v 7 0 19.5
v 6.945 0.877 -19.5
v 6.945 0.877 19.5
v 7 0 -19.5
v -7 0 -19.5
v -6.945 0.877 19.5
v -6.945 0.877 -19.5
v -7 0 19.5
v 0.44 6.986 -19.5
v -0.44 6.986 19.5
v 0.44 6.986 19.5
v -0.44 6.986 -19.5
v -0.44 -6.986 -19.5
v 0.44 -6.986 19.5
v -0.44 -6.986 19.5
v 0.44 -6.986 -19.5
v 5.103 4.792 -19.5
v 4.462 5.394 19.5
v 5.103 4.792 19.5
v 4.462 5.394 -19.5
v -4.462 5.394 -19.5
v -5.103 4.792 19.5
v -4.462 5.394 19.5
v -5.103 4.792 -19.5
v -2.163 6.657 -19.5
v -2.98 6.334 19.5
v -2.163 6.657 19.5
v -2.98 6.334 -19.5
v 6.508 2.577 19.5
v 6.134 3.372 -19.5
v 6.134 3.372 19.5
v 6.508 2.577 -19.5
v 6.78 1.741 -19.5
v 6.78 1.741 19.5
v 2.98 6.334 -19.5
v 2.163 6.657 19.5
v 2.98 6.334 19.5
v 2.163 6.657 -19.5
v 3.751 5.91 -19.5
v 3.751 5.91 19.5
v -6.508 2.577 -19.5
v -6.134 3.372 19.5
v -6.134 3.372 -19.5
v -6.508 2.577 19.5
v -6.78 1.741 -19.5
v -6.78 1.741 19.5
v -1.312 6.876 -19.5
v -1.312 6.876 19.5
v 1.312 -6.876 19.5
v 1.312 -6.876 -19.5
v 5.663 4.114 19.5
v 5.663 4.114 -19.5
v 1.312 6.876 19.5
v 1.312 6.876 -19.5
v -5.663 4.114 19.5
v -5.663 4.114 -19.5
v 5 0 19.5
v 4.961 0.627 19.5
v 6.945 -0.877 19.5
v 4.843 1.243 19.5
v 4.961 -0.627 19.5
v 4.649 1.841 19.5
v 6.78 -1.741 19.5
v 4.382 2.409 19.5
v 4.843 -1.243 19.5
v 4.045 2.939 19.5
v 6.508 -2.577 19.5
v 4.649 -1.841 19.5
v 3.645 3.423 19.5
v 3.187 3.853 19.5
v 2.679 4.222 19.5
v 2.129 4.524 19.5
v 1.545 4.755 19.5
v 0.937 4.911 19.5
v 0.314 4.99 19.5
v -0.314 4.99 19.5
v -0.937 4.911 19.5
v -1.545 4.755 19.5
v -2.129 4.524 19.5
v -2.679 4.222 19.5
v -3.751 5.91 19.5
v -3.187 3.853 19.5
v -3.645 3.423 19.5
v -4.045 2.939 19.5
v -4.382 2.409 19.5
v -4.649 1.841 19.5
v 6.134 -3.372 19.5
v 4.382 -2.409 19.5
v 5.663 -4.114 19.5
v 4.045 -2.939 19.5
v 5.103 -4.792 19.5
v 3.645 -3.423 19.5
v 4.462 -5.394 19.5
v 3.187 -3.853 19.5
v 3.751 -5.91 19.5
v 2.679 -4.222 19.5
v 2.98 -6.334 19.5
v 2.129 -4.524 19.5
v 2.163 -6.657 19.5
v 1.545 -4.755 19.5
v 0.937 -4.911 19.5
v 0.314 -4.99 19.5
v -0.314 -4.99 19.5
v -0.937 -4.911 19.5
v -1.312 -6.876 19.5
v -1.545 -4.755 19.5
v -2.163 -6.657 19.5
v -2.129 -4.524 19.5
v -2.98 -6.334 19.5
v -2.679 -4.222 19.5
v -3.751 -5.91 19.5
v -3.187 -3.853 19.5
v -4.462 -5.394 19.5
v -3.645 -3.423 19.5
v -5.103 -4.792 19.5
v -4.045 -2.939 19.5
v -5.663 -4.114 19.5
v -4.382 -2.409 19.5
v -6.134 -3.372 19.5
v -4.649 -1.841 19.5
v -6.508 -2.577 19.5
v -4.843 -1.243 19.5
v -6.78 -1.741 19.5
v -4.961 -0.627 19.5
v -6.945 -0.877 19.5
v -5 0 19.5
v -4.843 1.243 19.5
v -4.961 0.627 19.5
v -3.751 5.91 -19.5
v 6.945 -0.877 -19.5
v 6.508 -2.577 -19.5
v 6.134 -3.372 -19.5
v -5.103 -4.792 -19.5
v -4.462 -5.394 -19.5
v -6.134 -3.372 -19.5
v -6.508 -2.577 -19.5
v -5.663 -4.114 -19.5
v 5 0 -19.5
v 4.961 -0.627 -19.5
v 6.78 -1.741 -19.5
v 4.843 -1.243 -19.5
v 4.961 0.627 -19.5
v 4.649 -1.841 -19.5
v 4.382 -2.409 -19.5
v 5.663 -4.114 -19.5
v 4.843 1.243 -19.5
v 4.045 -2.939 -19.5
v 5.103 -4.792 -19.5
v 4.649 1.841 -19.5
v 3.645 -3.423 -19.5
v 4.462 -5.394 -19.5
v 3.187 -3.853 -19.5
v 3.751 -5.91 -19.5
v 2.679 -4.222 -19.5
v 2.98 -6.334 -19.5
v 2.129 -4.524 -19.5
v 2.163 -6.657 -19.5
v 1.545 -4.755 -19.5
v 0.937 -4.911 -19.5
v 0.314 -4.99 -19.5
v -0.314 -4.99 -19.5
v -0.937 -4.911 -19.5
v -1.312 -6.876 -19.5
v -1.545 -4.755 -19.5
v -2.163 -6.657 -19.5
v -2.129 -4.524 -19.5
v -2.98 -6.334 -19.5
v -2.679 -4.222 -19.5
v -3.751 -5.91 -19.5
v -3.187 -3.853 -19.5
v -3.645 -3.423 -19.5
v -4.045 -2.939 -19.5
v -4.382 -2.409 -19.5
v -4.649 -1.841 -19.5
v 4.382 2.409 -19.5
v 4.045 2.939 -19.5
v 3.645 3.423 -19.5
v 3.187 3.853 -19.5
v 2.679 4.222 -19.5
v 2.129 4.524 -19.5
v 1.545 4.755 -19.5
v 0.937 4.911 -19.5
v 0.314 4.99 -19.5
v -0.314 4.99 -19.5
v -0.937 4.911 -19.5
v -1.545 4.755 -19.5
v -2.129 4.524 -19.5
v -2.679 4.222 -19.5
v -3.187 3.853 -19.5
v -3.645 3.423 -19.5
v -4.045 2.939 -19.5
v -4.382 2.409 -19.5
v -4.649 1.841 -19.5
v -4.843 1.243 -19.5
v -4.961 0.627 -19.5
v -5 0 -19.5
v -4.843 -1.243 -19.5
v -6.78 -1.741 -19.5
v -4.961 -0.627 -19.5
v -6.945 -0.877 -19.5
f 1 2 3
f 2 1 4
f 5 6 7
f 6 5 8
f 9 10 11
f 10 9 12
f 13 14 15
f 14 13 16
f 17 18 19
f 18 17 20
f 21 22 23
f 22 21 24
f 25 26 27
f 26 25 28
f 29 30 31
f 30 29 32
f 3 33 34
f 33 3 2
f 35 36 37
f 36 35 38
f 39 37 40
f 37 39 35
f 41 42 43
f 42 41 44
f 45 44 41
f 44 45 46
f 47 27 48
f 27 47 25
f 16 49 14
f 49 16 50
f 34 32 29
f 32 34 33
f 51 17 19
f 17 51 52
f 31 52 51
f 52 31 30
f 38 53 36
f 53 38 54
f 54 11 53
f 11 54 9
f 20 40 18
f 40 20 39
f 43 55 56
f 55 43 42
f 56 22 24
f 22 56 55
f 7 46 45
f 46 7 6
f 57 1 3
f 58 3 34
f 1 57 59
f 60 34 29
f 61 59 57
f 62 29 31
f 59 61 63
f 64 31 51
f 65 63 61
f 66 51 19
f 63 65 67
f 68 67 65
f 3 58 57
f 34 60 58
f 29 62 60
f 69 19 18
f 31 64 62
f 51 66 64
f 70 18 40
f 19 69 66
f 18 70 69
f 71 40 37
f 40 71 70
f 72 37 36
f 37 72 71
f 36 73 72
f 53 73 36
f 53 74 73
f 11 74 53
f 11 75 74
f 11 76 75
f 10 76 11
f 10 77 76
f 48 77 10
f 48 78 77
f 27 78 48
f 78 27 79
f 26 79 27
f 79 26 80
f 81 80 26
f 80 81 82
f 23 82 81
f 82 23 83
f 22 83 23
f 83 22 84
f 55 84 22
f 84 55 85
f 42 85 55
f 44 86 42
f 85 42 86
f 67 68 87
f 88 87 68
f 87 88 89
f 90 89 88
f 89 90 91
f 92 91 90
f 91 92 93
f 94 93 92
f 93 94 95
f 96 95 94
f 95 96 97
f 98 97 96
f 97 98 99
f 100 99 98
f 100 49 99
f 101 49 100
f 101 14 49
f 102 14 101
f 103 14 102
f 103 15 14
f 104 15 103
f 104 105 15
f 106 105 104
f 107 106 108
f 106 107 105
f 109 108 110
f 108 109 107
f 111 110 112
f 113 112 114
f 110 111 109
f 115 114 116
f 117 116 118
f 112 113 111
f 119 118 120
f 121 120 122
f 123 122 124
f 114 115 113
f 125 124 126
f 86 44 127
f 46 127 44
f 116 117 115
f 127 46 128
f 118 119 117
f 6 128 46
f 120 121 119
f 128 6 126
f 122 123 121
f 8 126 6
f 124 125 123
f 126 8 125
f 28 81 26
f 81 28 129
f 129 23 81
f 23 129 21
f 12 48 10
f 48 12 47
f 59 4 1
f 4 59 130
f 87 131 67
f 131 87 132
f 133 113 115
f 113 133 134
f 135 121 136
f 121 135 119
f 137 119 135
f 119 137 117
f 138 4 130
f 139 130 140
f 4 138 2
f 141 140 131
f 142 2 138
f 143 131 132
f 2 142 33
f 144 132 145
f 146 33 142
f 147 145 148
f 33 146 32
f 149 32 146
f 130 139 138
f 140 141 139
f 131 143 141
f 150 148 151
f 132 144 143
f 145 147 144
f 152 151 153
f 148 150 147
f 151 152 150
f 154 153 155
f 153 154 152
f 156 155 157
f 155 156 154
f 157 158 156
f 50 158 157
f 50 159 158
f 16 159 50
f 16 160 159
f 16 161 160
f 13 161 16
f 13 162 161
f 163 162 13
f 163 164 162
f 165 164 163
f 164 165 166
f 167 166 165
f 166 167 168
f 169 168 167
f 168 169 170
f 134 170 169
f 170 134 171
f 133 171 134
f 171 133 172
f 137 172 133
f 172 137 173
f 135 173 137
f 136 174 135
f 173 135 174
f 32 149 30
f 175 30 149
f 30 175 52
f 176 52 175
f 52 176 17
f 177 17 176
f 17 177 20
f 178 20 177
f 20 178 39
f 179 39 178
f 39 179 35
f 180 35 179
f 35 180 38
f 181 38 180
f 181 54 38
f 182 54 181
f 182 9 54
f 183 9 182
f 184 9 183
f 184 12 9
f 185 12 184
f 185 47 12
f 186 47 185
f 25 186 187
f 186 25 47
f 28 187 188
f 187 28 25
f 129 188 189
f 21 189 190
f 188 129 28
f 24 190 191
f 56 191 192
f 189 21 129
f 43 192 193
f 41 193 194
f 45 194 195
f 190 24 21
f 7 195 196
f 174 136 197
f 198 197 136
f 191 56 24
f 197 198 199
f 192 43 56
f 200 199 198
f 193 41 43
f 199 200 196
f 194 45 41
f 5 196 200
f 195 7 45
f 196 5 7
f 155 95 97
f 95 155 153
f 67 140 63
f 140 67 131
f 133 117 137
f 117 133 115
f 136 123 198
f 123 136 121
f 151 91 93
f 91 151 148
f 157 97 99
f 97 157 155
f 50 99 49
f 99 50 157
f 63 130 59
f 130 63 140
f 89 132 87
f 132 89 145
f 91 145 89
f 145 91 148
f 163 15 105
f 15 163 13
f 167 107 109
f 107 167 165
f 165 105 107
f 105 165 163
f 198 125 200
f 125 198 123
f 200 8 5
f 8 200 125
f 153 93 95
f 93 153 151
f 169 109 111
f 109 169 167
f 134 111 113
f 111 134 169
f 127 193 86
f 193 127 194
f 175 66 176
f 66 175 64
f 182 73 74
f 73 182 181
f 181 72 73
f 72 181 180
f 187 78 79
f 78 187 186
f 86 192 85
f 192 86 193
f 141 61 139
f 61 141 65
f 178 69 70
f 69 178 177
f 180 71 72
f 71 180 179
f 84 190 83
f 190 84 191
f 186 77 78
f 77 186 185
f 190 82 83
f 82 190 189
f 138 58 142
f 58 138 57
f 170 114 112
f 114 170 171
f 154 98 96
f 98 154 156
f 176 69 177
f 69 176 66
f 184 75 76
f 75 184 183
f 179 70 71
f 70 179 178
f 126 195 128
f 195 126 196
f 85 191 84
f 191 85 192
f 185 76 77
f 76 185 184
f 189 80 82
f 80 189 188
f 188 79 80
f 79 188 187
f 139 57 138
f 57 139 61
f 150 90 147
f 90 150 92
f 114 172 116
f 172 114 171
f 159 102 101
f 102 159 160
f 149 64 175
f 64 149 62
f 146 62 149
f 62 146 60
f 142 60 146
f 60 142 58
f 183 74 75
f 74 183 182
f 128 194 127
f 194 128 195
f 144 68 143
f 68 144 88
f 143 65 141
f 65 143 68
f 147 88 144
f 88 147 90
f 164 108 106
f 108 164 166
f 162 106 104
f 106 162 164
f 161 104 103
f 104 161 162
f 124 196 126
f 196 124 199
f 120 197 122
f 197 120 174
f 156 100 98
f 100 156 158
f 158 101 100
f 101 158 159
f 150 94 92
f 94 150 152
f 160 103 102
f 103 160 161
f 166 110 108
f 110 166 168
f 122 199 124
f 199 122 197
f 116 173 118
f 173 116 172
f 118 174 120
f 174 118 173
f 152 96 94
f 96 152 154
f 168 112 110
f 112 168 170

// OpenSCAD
$fn = 50;


difference() {
	union() {
		translate(v = [0, 0, -19.5000000000]) {
			cylinder(h = 39, r = 7.0000000000);
		}
	}
	union() {
		translate(v = [0, 0, -100.0000000000]) {
			cylinder(h = 200, r = 5);
		}
	}
}
